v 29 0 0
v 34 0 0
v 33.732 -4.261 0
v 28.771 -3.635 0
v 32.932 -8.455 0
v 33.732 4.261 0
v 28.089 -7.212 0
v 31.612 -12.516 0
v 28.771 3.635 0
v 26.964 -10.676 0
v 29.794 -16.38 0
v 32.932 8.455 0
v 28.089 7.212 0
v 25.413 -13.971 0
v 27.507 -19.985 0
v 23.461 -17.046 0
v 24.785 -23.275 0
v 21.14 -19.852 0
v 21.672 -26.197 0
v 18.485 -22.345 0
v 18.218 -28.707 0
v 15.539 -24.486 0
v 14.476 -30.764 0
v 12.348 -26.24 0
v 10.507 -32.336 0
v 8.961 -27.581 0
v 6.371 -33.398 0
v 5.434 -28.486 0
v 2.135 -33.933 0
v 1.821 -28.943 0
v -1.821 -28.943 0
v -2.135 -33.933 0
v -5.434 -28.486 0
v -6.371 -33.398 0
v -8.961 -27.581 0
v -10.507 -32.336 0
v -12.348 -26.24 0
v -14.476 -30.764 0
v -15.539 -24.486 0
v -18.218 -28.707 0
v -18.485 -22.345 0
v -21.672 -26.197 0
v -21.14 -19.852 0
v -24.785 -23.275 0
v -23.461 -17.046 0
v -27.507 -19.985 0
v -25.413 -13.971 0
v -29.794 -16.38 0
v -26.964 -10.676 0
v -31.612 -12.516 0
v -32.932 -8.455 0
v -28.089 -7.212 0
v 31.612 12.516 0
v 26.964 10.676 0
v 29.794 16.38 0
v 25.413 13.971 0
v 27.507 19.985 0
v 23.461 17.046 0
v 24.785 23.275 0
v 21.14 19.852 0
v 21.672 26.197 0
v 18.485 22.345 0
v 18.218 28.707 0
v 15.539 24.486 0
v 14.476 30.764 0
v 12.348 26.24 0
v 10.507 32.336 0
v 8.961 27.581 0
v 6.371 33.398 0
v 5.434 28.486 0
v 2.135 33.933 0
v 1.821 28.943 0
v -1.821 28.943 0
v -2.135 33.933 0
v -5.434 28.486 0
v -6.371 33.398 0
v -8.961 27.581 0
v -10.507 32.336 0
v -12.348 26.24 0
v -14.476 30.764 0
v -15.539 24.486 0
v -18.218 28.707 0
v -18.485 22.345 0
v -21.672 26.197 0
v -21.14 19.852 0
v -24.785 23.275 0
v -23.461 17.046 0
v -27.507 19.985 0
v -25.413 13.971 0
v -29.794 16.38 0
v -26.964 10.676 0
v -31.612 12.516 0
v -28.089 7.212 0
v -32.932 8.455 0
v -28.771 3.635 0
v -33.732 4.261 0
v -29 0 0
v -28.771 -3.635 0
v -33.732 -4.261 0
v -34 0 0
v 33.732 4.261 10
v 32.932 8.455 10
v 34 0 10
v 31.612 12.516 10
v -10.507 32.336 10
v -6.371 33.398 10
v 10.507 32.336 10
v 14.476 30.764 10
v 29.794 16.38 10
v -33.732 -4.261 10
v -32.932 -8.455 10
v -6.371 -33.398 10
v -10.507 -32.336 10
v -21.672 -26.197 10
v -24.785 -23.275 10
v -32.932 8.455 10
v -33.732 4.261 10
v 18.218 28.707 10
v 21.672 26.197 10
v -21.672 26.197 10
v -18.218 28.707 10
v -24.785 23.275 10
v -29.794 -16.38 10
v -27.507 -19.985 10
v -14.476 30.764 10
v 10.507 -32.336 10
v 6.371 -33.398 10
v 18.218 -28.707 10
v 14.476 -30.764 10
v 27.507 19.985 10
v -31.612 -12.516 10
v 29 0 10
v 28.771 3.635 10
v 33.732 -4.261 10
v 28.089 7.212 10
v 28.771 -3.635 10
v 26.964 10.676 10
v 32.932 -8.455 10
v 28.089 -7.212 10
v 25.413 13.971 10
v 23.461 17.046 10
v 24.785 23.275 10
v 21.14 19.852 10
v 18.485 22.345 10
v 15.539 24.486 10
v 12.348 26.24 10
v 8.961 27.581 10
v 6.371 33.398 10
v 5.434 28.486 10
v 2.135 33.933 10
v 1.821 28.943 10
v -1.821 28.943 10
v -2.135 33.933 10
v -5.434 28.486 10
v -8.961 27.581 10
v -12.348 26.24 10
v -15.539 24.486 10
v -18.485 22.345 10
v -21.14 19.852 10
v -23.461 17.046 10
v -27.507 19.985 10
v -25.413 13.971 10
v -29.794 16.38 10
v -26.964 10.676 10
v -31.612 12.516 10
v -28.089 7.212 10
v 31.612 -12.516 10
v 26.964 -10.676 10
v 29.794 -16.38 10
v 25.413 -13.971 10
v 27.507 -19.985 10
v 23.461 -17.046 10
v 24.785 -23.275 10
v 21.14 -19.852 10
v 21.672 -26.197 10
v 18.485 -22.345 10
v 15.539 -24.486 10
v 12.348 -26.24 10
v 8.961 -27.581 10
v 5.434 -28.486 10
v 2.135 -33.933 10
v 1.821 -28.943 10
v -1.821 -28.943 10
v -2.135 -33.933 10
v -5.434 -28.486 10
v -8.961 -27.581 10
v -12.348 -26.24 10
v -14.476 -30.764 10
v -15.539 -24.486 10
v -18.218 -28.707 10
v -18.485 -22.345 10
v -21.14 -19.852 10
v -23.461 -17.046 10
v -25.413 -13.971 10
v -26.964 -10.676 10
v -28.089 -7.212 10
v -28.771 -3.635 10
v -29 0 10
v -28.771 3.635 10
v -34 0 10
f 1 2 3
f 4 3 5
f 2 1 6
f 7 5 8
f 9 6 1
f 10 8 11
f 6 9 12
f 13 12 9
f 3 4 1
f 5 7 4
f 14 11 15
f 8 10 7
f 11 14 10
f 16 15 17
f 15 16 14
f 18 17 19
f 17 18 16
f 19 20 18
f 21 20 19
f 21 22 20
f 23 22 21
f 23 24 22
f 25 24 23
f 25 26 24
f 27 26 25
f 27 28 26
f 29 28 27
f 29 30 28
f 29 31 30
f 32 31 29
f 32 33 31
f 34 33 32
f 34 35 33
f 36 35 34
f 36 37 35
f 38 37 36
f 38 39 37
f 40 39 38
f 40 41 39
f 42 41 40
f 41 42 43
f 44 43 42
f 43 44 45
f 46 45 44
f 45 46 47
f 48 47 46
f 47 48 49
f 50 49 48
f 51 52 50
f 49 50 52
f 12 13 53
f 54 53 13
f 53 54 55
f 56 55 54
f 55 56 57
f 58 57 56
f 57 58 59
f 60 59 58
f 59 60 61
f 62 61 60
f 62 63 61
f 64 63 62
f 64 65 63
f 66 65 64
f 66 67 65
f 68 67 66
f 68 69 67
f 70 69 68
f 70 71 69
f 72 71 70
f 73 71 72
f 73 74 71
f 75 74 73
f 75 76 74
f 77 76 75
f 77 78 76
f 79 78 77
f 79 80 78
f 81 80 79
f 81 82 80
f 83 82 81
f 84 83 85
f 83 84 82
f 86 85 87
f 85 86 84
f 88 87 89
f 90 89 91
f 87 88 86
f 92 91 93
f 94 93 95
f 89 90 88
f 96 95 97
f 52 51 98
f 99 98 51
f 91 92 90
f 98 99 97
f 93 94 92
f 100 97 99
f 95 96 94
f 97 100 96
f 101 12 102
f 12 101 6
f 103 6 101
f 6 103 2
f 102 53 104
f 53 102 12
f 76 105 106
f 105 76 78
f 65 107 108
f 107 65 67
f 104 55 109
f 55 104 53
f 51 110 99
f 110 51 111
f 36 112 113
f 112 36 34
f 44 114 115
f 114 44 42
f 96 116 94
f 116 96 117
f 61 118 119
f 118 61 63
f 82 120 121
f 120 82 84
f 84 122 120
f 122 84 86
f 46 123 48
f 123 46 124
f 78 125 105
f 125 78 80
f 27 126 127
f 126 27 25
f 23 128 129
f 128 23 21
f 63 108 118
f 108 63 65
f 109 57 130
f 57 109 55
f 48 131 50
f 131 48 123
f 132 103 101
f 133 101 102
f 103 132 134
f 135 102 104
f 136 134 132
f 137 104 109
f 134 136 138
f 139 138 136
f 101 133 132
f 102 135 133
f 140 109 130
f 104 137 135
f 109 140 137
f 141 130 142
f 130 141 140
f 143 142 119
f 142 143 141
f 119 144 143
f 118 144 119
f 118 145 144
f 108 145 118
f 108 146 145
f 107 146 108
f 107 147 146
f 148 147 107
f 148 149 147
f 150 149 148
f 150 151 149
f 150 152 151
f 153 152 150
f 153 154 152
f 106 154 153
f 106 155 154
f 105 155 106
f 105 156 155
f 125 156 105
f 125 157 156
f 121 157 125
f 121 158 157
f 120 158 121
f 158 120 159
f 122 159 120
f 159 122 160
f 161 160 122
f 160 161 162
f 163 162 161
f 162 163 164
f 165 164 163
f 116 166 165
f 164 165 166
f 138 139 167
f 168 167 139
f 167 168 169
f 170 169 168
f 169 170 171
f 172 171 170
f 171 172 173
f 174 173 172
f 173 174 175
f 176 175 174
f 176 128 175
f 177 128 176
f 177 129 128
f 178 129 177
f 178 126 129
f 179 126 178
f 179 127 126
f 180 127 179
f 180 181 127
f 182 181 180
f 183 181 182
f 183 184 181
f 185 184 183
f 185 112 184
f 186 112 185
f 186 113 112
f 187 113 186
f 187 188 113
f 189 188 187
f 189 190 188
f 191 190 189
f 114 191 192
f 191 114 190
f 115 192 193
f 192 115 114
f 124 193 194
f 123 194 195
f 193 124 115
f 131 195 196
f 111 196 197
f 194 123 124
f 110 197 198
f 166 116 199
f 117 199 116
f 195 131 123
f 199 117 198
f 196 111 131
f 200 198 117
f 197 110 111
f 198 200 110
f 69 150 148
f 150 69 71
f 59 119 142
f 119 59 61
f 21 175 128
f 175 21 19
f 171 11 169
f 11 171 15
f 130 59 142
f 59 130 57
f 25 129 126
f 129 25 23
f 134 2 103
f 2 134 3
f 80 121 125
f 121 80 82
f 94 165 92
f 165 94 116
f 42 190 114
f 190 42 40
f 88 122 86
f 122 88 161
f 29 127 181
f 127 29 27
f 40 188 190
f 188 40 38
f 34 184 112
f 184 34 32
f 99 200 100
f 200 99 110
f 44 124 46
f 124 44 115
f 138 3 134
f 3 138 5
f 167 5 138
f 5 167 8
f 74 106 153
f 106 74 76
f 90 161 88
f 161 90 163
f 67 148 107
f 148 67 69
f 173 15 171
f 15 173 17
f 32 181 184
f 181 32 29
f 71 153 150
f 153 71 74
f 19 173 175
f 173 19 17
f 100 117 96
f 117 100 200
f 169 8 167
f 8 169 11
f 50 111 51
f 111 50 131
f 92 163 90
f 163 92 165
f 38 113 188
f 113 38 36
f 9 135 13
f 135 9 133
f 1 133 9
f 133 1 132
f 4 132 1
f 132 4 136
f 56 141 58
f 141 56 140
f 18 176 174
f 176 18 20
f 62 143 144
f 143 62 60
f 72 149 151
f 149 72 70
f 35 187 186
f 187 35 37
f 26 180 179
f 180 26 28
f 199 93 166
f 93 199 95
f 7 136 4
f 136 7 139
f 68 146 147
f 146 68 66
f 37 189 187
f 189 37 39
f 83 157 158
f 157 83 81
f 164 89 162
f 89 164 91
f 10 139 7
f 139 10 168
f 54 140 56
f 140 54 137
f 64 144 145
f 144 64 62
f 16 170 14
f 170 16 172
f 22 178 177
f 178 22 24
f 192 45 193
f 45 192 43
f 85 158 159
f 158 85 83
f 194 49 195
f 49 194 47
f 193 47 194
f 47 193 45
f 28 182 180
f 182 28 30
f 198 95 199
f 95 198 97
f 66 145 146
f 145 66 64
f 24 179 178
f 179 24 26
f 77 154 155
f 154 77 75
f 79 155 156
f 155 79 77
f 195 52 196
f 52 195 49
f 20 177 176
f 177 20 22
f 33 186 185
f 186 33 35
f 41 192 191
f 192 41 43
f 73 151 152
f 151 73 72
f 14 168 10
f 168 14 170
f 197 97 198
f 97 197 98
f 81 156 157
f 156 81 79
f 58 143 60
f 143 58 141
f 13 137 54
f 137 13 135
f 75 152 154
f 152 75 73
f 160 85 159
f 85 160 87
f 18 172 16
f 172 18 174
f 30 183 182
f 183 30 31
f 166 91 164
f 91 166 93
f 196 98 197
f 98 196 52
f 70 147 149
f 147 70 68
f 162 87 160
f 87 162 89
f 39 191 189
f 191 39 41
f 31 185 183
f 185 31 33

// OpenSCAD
$fn=50;

HEIGHT= 10;
OUTER_DIAMETER=68;
difference()
{
    cylinder(h=HEIGHT, d=OUTER_DIAMETER);
    cylinder(h=HEIGHT, d=OUTER_DIAMETER-10);
}
